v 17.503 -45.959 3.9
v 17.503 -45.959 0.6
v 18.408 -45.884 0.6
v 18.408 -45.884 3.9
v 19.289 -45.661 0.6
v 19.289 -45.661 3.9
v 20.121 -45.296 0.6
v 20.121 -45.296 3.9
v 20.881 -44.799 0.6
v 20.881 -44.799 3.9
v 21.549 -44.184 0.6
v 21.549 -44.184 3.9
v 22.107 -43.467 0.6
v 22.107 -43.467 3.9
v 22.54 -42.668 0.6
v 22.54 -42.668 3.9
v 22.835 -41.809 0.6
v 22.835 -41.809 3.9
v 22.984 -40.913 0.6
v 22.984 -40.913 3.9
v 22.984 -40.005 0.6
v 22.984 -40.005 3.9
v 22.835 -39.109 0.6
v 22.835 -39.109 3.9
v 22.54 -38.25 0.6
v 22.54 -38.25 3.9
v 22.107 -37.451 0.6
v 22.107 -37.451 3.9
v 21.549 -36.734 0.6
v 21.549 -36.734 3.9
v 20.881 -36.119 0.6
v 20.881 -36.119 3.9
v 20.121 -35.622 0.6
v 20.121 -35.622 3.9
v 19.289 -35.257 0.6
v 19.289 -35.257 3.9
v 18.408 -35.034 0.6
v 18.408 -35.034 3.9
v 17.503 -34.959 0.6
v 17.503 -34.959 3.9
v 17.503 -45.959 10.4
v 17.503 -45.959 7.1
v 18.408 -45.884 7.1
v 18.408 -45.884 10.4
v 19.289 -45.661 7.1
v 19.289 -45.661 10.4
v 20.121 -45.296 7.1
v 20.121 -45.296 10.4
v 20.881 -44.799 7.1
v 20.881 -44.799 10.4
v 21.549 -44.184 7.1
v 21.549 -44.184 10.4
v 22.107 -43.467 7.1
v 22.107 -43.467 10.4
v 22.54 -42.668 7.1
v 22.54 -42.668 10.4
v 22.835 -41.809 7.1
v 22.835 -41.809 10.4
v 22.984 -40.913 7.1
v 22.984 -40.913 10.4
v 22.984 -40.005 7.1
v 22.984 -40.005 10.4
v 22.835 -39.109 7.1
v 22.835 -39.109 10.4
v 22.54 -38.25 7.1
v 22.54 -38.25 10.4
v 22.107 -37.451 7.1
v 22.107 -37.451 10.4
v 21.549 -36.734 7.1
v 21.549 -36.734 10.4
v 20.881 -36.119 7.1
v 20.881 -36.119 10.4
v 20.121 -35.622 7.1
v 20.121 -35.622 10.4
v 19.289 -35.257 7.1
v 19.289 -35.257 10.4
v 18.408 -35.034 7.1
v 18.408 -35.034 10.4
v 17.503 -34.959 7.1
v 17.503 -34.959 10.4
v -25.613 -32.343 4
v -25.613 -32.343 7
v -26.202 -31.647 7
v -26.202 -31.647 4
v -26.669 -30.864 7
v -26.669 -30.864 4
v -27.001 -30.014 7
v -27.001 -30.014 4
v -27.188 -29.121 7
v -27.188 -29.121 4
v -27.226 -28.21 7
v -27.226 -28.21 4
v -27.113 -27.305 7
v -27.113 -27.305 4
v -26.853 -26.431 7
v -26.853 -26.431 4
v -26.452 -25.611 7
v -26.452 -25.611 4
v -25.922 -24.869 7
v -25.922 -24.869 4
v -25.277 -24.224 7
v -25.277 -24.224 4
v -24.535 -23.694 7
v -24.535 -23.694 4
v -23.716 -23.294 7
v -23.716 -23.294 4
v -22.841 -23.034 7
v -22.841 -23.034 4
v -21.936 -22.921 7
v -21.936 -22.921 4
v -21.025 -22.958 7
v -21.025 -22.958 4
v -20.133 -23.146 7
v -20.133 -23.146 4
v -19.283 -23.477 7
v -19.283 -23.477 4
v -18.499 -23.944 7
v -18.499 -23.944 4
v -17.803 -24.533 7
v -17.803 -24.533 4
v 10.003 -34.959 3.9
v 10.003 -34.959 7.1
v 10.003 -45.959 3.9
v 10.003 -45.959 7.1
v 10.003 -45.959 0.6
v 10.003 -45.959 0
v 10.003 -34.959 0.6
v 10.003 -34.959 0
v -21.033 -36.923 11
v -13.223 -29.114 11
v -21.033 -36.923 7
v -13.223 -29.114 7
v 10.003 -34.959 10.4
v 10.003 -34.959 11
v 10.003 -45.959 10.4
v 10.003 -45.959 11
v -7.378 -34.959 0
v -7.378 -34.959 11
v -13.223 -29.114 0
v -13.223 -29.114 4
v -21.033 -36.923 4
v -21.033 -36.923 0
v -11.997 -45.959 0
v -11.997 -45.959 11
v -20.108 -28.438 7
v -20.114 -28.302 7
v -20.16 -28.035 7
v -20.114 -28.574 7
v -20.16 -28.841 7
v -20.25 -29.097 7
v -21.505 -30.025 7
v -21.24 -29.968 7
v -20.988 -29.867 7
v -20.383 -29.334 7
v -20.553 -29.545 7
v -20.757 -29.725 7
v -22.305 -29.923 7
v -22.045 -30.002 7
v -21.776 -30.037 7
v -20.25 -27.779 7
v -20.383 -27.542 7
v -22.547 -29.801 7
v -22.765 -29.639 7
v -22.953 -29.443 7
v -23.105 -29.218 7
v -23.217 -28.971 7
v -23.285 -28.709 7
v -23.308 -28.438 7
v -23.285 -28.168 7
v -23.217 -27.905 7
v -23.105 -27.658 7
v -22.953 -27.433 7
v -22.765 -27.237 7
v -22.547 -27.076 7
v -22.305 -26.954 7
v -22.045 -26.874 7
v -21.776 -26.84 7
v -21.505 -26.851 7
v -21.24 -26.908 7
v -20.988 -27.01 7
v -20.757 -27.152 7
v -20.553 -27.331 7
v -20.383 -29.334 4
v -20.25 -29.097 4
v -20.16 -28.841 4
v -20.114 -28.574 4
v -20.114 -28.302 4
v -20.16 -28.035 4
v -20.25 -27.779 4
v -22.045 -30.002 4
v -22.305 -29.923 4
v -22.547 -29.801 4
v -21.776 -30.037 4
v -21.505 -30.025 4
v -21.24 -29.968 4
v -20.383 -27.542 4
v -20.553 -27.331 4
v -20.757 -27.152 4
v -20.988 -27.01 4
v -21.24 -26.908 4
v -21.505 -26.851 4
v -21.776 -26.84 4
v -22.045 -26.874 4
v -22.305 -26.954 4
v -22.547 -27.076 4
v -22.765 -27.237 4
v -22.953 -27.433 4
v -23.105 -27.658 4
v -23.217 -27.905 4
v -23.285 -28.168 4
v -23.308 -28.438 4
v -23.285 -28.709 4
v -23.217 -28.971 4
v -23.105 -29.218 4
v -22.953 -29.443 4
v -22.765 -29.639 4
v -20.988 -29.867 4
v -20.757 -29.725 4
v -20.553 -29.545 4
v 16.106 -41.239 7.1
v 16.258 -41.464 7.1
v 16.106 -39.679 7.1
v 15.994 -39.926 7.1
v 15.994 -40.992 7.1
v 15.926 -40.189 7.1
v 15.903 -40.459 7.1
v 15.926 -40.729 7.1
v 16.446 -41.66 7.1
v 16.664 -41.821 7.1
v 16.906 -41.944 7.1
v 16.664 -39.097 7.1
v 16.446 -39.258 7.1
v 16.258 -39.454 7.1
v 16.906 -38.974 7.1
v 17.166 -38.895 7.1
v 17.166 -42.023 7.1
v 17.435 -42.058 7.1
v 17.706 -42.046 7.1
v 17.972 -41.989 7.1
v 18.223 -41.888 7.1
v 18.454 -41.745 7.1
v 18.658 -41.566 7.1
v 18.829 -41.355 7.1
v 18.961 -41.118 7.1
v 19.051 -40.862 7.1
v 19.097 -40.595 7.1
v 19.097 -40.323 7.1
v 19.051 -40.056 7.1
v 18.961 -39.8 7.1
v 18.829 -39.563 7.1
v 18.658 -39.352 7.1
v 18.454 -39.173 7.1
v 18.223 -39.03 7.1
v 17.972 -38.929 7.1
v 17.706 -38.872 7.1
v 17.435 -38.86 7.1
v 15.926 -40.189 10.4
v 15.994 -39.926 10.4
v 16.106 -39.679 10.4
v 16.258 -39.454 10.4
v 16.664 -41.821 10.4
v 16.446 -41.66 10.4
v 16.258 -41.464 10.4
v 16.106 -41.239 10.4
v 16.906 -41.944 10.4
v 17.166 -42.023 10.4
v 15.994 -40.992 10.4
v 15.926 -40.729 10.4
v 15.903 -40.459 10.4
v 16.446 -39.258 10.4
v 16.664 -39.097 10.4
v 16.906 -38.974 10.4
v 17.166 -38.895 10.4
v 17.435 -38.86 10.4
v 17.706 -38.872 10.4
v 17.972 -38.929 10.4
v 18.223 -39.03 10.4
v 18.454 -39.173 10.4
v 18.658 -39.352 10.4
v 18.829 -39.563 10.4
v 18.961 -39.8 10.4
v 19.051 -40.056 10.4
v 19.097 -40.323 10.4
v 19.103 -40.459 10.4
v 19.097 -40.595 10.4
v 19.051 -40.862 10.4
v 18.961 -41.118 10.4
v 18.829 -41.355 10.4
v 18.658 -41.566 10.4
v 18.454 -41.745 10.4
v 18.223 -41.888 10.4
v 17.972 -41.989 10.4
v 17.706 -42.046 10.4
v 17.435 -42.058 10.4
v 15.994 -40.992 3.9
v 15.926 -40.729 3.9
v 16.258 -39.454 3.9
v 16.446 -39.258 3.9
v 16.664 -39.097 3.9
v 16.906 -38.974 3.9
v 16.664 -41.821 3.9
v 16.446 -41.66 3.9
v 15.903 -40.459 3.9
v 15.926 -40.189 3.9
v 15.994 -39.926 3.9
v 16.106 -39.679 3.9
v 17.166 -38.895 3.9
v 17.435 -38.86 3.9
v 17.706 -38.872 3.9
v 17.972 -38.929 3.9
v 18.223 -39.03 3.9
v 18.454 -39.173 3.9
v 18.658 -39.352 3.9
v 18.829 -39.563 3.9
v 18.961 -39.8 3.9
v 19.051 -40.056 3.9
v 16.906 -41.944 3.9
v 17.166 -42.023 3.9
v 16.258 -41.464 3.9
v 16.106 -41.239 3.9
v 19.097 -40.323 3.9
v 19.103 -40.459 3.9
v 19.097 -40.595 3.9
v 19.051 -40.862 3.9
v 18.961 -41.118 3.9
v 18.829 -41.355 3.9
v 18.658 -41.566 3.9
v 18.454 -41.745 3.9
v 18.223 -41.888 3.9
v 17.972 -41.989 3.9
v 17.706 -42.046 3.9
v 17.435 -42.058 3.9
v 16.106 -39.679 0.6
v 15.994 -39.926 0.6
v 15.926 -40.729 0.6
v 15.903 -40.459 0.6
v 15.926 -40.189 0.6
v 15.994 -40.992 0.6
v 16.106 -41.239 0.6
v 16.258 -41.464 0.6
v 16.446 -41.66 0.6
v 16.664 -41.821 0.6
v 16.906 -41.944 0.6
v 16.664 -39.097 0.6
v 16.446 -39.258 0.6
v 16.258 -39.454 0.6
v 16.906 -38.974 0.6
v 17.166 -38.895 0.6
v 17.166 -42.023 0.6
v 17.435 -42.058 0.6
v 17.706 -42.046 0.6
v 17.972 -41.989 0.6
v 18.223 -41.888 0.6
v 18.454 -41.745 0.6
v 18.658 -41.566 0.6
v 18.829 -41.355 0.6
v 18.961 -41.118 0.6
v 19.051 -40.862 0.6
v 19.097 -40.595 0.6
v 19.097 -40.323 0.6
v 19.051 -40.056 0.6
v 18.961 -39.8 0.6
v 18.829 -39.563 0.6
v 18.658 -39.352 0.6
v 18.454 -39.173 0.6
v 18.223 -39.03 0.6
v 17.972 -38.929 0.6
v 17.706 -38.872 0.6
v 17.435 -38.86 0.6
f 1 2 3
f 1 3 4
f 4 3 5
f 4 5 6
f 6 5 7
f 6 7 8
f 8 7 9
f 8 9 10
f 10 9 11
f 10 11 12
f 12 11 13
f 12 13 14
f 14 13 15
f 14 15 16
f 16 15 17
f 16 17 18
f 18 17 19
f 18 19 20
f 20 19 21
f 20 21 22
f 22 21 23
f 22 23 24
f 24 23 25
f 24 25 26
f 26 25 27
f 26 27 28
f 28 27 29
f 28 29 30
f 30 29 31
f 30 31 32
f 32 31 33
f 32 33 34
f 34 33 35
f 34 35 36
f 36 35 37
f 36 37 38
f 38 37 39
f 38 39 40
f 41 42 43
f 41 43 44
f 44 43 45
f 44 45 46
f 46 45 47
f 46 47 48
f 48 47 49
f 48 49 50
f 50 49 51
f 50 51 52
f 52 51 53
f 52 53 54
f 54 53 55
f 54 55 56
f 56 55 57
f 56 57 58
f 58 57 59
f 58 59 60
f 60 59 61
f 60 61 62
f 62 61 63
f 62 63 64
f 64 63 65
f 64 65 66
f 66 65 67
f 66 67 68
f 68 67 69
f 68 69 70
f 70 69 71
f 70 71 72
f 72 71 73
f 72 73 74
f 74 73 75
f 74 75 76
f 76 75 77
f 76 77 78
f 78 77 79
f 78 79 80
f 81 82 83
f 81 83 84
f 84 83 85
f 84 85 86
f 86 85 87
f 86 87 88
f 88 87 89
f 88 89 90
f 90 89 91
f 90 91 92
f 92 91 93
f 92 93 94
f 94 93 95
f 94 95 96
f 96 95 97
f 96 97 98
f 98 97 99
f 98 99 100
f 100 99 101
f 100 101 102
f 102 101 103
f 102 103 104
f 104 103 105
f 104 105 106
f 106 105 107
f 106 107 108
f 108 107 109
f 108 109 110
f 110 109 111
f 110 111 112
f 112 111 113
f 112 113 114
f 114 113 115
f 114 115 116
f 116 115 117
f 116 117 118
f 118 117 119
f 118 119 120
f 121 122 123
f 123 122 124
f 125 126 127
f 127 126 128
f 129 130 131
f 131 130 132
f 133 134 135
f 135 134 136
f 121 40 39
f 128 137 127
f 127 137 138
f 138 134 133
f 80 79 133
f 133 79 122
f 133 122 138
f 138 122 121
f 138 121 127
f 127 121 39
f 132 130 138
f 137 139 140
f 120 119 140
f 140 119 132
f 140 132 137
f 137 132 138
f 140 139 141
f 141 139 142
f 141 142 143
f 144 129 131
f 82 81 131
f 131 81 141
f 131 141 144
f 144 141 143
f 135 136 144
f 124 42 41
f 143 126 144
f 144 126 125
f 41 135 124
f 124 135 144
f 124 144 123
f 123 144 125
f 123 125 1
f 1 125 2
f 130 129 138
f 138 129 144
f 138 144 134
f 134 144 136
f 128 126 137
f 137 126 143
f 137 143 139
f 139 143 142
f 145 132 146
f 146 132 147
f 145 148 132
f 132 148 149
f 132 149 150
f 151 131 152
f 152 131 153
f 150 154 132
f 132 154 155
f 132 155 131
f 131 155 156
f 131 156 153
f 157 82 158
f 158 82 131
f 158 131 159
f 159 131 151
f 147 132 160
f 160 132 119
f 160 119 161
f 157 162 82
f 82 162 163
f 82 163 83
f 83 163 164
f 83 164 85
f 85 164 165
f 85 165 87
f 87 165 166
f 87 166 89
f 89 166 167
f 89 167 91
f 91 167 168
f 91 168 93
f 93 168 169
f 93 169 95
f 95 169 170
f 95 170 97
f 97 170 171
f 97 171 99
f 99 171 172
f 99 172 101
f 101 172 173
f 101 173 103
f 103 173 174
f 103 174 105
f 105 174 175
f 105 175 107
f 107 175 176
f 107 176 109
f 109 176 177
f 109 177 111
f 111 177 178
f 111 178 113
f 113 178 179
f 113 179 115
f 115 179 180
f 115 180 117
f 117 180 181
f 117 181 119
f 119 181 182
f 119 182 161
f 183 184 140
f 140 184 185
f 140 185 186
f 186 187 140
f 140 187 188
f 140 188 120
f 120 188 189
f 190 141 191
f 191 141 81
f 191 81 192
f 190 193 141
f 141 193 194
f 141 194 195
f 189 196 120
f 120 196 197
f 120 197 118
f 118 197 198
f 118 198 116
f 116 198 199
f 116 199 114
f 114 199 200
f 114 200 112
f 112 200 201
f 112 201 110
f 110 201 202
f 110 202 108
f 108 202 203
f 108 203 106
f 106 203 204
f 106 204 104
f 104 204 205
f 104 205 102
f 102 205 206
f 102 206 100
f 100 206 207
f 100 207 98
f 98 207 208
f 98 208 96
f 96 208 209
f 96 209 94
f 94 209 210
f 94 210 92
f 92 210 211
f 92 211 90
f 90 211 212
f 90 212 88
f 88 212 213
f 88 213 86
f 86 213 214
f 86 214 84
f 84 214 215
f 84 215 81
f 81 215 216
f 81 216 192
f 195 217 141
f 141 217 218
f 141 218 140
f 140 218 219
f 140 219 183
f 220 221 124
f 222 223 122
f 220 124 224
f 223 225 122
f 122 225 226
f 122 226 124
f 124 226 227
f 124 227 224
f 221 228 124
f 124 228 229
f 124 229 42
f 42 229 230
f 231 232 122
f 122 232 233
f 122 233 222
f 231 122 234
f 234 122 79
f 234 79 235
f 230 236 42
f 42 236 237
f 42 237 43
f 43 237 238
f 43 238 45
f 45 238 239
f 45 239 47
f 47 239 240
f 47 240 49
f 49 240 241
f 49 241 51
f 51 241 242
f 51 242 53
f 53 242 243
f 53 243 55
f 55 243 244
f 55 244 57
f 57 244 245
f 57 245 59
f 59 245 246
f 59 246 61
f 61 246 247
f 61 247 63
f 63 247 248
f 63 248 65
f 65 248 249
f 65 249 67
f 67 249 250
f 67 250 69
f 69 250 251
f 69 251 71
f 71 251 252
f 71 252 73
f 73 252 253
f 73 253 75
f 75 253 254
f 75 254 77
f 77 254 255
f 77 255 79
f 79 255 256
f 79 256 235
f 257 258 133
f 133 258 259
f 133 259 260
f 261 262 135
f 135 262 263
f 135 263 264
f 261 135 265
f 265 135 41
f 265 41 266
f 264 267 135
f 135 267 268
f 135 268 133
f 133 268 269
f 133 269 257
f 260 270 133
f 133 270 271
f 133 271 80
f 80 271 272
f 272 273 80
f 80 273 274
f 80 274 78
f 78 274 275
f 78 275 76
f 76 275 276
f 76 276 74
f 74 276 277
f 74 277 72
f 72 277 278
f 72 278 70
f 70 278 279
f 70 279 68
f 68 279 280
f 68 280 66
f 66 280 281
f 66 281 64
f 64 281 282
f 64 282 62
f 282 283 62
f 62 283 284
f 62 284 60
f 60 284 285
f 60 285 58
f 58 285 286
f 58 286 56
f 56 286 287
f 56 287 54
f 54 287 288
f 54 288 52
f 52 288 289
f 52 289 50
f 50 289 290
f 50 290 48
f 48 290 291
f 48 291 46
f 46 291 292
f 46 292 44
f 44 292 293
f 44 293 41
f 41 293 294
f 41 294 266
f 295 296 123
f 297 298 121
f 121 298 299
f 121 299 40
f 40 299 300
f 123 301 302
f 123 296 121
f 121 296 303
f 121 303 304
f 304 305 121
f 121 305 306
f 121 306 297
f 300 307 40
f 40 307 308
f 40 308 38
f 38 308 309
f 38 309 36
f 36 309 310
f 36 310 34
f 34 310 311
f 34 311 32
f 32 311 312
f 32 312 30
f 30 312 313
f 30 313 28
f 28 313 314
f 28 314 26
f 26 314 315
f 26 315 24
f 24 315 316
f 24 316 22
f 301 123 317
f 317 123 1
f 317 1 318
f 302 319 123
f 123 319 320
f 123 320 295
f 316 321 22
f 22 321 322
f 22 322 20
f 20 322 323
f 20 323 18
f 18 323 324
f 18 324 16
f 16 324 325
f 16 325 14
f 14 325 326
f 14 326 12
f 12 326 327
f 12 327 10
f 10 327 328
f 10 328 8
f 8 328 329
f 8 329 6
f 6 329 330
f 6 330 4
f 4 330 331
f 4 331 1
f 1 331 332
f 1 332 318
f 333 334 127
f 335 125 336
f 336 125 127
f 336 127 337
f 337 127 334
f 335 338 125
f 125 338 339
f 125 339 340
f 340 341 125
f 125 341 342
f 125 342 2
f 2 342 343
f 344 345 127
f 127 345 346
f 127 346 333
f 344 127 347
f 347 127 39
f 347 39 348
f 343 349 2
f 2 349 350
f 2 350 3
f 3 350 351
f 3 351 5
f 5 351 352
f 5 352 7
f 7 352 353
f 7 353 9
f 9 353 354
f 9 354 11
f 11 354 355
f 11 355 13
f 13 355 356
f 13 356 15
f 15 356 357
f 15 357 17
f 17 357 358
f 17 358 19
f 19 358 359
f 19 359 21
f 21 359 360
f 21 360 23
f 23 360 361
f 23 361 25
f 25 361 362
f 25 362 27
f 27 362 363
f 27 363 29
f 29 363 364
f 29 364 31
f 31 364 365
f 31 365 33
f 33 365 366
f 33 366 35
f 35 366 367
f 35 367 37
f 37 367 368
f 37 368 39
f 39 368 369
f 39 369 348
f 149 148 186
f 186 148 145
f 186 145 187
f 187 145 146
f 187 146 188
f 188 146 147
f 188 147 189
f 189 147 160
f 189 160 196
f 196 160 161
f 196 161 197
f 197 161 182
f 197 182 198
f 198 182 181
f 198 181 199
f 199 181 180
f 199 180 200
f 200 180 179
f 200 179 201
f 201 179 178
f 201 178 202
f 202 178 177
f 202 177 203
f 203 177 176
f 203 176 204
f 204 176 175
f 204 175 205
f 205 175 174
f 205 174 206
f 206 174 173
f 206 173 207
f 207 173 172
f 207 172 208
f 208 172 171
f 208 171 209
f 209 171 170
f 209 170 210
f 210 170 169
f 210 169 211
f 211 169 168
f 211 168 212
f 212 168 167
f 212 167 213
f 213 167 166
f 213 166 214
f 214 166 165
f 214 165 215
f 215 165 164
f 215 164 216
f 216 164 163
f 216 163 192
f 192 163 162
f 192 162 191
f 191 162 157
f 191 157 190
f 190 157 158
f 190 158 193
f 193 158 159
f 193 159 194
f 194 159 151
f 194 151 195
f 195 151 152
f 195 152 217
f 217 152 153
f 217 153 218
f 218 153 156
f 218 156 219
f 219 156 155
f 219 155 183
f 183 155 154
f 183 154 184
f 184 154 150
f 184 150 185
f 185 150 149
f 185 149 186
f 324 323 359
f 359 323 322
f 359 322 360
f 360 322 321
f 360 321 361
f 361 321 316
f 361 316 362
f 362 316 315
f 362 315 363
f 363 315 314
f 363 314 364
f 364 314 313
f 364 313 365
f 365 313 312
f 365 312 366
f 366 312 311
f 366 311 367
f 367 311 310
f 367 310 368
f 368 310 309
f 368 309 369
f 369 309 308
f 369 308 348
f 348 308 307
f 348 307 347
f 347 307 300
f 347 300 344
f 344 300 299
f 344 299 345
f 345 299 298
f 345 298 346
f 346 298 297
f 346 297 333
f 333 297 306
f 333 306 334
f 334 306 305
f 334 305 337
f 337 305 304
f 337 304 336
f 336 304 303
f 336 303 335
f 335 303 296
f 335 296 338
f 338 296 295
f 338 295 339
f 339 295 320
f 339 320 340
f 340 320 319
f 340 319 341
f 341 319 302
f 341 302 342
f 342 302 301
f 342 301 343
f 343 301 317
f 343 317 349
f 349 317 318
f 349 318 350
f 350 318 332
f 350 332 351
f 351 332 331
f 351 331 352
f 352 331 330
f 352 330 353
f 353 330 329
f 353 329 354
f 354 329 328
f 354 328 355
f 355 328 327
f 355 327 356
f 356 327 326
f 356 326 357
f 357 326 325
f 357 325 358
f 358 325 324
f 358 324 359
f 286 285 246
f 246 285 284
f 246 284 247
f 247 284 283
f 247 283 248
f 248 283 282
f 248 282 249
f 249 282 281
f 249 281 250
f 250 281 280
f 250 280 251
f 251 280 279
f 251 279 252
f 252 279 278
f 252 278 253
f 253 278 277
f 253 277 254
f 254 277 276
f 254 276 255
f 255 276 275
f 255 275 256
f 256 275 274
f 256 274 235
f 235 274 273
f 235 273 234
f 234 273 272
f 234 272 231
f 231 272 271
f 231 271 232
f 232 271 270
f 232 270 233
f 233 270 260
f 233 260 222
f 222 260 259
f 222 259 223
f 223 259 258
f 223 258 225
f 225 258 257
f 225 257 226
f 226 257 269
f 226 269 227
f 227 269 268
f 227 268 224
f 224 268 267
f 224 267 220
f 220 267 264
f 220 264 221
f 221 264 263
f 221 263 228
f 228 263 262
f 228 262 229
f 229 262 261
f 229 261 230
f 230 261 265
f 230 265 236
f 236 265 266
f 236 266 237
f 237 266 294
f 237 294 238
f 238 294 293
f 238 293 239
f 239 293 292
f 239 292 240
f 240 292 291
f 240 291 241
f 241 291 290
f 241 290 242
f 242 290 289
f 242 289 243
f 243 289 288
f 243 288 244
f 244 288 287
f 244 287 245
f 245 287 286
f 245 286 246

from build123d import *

# Parameters (mm, degrees)
SALIENTE_EXTRUIR1_DEPTH = 11
CROQUIS13_W             = 3
CROQUIS13_H             = 12
SALIENTE_EXTRUIR3_DEPTH = 11.044424957
CROQUIS15_W             = 13
CROQUIS15_H             = 3.3
SALIENTE_EXTRUIR5_DEPTH = 11
REDONDEO1_RADIUS        = 5.522212479
REDONDEO1_LENGTH        = 3
REDONDEO2_RADIUS        = 5.5
REDONDEO2_LENGTH        = 3.3
REDONDEO3_RADIUS        = 5.5
REDONDEO3_LENGTH        = 3.3
CROQUIS16_R             = 1.6
CORTAR_EXTRUIR6_DEPTH   = 54.876956991
CROQUIS17_R             = 1.6
CORTAR_EXTRUIR7_DEPTH   = 55.423216504


with BuildPart() as part:
    # Croquis2 → Saliente-Extruir1 (new body)
    with BuildSketch(Plane.XY):
        Polygon((-7.377824178, -34.958999634), (10.003000259, -34.958999634), (10.003000259, -45.958999634), (-11.996999741, -45.958999634), (-21.032533647, -36.923465728), (-13.222945865, -29.113877947), align=None)
    extrude(amount=SALIENTE_EXTRUIR1_DEPTH)

    # Croquis13 → Saliente-Extruir3 (add)
    with BuildSketch(Plane(origin=(-21.168411906, -21.168411906, 0), x_dir=(0, 0, -1), z_dir=(0.7071067811865442, 0.7071067811865508, 0))):
        with Locations((-5.5, -5.236585834)):
            Rectangle(CROQUIS13_W, CROQUIS13_H)
    extrude(amount=-SALIENTE_EXTRUIR3_DEPTH)

    # Croquis15 → Saliente-Extruir5 (add, through all)
    with BuildSketch(Plane(origin=(0, -34.958999634, 0), x_dir=(1, 0, 0), z_dir=(0, 1, 0))):
        with Locations((16.503000259, -2.25)):
            Rectangle(CROQUIS15_W, CROQUIS15_H)
        with Locations((16.503000259, -8.75)):
            Rectangle(CROQUIS15_W, CROQUIS15_H)
    extrude(amount=-SALIENTE_EXTRUIR5_DEPTH)

    # Redondeo1: full round fillet: the end face becomes a half cylinder, R = half its width
    redondeo1_face = Plane((-25.61302113, -24.533390463, 5.5), x_dir=(0, 0, -1), z_dir=(-0.707106781187, 0.707106781187, 0))  # on the end face: x along it, z out of the body
    redondeo1_slab = redondeo1_face.offset(-REDONDEO1_RADIUS / 2) * Box(REDONDEO1_LENGTH, 2 * REDONDEO1_RADIUS, REDONDEO1_RADIUS, mode=Mode.PRIVATE)  # the body's end, R deep
    redondeo1_round = Plane((-21.708227239, -28.438184354, 5.5), x_dir=(-0.707106781187, 0.707106781187, 0), z_dir=(0, 0, -1)) * Cylinder(REDONDEO1_RADIUS, REDONDEO1_LENGTH, mode=Mode.PRIVATE)  # its axis R under the face
    add(redondeo1_slab - redondeo1_round, mode=Mode.SUBTRACT)

    # Redondeo2: full round fillet: the end face becomes a half cylinder, R = half its width
    redondeo2_face = Plane((23.003000259, -40.458999634, 8.75), x_dir=(0, 0, -1), z_dir=(1, 0, 0))  # on the end face: x along it, z out of the body
    redondeo2_slab = redondeo2_face.offset(-REDONDEO2_RADIUS / 2) * Box(REDONDEO2_LENGTH, 2 * REDONDEO2_RADIUS, REDONDEO2_RADIUS, mode=Mode.PRIVATE)  # the body's end, R deep
    redondeo2_round = Plane((17.503000259, -40.458999634, 8.75), x_dir=(1, 0, 0), z_dir=(0, 0, -1)) * Cylinder(REDONDEO2_RADIUS, REDONDEO2_LENGTH, mode=Mode.PRIVATE)  # its axis R under the face
    add(redondeo2_slab - redondeo2_round, mode=Mode.SUBTRACT)

    # Redondeo3: full round fillet: the end face becomes a half cylinder, R = half its width
    redondeo3_face = Plane((23.003000259, -40.458999634, 2.25), x_dir=(0, 0, -1), z_dir=(1, 0, 0))  # on the end face: x along it, z out of the body
    redondeo3_slab = redondeo3_face.offset(-REDONDEO3_RADIUS / 2) * Box(REDONDEO3_LENGTH, 2 * REDONDEO3_RADIUS, REDONDEO3_RADIUS, mode=Mode.PRIVATE)  # the body's end, R deep
    redondeo3_round = Plane((17.503000259, -40.458999634, 2.25), x_dir=(1, 0, 0), z_dir=(0, 0, -1)) * Cylinder(REDONDEO3_RADIUS, REDONDEO3_LENGTH, mode=Mode.PRIVATE)  # its axis R under the face
    add(redondeo3_slab - redondeo3_round, mode=Mode.SUBTRACT)

    # Croquis16 → Cortar-Extruir6 (cut, through all)
    with BuildSketch(Plane(origin=(0, 0, 4), x_dir=(-1, 0, 0), z_dir=(0, 0, -1))):
        with Locations((21.70822724, -28.438184354)):
            Circle(CROQUIS16_R)
    extrude(amount=-CORTAR_EXTRUIR6_DEPTH, mode=Mode.SUBTRACT)

    # Croquis17 → Cortar-Extruir7 (cut, through all)
    with BuildSketch(Plane(origin=(0, 0, 0.6), x_dir=(-1, 0, 0), z_dir=(0, 0, -1))):
        with Locations((-17.503000259, -40.458999634)):
            Circle(CROQUIS17_R)
    extrude(amount=-CORTAR_EXTRUIR7_DEPTH, mode=Mode.SUBTRACT)


solid = part.part
